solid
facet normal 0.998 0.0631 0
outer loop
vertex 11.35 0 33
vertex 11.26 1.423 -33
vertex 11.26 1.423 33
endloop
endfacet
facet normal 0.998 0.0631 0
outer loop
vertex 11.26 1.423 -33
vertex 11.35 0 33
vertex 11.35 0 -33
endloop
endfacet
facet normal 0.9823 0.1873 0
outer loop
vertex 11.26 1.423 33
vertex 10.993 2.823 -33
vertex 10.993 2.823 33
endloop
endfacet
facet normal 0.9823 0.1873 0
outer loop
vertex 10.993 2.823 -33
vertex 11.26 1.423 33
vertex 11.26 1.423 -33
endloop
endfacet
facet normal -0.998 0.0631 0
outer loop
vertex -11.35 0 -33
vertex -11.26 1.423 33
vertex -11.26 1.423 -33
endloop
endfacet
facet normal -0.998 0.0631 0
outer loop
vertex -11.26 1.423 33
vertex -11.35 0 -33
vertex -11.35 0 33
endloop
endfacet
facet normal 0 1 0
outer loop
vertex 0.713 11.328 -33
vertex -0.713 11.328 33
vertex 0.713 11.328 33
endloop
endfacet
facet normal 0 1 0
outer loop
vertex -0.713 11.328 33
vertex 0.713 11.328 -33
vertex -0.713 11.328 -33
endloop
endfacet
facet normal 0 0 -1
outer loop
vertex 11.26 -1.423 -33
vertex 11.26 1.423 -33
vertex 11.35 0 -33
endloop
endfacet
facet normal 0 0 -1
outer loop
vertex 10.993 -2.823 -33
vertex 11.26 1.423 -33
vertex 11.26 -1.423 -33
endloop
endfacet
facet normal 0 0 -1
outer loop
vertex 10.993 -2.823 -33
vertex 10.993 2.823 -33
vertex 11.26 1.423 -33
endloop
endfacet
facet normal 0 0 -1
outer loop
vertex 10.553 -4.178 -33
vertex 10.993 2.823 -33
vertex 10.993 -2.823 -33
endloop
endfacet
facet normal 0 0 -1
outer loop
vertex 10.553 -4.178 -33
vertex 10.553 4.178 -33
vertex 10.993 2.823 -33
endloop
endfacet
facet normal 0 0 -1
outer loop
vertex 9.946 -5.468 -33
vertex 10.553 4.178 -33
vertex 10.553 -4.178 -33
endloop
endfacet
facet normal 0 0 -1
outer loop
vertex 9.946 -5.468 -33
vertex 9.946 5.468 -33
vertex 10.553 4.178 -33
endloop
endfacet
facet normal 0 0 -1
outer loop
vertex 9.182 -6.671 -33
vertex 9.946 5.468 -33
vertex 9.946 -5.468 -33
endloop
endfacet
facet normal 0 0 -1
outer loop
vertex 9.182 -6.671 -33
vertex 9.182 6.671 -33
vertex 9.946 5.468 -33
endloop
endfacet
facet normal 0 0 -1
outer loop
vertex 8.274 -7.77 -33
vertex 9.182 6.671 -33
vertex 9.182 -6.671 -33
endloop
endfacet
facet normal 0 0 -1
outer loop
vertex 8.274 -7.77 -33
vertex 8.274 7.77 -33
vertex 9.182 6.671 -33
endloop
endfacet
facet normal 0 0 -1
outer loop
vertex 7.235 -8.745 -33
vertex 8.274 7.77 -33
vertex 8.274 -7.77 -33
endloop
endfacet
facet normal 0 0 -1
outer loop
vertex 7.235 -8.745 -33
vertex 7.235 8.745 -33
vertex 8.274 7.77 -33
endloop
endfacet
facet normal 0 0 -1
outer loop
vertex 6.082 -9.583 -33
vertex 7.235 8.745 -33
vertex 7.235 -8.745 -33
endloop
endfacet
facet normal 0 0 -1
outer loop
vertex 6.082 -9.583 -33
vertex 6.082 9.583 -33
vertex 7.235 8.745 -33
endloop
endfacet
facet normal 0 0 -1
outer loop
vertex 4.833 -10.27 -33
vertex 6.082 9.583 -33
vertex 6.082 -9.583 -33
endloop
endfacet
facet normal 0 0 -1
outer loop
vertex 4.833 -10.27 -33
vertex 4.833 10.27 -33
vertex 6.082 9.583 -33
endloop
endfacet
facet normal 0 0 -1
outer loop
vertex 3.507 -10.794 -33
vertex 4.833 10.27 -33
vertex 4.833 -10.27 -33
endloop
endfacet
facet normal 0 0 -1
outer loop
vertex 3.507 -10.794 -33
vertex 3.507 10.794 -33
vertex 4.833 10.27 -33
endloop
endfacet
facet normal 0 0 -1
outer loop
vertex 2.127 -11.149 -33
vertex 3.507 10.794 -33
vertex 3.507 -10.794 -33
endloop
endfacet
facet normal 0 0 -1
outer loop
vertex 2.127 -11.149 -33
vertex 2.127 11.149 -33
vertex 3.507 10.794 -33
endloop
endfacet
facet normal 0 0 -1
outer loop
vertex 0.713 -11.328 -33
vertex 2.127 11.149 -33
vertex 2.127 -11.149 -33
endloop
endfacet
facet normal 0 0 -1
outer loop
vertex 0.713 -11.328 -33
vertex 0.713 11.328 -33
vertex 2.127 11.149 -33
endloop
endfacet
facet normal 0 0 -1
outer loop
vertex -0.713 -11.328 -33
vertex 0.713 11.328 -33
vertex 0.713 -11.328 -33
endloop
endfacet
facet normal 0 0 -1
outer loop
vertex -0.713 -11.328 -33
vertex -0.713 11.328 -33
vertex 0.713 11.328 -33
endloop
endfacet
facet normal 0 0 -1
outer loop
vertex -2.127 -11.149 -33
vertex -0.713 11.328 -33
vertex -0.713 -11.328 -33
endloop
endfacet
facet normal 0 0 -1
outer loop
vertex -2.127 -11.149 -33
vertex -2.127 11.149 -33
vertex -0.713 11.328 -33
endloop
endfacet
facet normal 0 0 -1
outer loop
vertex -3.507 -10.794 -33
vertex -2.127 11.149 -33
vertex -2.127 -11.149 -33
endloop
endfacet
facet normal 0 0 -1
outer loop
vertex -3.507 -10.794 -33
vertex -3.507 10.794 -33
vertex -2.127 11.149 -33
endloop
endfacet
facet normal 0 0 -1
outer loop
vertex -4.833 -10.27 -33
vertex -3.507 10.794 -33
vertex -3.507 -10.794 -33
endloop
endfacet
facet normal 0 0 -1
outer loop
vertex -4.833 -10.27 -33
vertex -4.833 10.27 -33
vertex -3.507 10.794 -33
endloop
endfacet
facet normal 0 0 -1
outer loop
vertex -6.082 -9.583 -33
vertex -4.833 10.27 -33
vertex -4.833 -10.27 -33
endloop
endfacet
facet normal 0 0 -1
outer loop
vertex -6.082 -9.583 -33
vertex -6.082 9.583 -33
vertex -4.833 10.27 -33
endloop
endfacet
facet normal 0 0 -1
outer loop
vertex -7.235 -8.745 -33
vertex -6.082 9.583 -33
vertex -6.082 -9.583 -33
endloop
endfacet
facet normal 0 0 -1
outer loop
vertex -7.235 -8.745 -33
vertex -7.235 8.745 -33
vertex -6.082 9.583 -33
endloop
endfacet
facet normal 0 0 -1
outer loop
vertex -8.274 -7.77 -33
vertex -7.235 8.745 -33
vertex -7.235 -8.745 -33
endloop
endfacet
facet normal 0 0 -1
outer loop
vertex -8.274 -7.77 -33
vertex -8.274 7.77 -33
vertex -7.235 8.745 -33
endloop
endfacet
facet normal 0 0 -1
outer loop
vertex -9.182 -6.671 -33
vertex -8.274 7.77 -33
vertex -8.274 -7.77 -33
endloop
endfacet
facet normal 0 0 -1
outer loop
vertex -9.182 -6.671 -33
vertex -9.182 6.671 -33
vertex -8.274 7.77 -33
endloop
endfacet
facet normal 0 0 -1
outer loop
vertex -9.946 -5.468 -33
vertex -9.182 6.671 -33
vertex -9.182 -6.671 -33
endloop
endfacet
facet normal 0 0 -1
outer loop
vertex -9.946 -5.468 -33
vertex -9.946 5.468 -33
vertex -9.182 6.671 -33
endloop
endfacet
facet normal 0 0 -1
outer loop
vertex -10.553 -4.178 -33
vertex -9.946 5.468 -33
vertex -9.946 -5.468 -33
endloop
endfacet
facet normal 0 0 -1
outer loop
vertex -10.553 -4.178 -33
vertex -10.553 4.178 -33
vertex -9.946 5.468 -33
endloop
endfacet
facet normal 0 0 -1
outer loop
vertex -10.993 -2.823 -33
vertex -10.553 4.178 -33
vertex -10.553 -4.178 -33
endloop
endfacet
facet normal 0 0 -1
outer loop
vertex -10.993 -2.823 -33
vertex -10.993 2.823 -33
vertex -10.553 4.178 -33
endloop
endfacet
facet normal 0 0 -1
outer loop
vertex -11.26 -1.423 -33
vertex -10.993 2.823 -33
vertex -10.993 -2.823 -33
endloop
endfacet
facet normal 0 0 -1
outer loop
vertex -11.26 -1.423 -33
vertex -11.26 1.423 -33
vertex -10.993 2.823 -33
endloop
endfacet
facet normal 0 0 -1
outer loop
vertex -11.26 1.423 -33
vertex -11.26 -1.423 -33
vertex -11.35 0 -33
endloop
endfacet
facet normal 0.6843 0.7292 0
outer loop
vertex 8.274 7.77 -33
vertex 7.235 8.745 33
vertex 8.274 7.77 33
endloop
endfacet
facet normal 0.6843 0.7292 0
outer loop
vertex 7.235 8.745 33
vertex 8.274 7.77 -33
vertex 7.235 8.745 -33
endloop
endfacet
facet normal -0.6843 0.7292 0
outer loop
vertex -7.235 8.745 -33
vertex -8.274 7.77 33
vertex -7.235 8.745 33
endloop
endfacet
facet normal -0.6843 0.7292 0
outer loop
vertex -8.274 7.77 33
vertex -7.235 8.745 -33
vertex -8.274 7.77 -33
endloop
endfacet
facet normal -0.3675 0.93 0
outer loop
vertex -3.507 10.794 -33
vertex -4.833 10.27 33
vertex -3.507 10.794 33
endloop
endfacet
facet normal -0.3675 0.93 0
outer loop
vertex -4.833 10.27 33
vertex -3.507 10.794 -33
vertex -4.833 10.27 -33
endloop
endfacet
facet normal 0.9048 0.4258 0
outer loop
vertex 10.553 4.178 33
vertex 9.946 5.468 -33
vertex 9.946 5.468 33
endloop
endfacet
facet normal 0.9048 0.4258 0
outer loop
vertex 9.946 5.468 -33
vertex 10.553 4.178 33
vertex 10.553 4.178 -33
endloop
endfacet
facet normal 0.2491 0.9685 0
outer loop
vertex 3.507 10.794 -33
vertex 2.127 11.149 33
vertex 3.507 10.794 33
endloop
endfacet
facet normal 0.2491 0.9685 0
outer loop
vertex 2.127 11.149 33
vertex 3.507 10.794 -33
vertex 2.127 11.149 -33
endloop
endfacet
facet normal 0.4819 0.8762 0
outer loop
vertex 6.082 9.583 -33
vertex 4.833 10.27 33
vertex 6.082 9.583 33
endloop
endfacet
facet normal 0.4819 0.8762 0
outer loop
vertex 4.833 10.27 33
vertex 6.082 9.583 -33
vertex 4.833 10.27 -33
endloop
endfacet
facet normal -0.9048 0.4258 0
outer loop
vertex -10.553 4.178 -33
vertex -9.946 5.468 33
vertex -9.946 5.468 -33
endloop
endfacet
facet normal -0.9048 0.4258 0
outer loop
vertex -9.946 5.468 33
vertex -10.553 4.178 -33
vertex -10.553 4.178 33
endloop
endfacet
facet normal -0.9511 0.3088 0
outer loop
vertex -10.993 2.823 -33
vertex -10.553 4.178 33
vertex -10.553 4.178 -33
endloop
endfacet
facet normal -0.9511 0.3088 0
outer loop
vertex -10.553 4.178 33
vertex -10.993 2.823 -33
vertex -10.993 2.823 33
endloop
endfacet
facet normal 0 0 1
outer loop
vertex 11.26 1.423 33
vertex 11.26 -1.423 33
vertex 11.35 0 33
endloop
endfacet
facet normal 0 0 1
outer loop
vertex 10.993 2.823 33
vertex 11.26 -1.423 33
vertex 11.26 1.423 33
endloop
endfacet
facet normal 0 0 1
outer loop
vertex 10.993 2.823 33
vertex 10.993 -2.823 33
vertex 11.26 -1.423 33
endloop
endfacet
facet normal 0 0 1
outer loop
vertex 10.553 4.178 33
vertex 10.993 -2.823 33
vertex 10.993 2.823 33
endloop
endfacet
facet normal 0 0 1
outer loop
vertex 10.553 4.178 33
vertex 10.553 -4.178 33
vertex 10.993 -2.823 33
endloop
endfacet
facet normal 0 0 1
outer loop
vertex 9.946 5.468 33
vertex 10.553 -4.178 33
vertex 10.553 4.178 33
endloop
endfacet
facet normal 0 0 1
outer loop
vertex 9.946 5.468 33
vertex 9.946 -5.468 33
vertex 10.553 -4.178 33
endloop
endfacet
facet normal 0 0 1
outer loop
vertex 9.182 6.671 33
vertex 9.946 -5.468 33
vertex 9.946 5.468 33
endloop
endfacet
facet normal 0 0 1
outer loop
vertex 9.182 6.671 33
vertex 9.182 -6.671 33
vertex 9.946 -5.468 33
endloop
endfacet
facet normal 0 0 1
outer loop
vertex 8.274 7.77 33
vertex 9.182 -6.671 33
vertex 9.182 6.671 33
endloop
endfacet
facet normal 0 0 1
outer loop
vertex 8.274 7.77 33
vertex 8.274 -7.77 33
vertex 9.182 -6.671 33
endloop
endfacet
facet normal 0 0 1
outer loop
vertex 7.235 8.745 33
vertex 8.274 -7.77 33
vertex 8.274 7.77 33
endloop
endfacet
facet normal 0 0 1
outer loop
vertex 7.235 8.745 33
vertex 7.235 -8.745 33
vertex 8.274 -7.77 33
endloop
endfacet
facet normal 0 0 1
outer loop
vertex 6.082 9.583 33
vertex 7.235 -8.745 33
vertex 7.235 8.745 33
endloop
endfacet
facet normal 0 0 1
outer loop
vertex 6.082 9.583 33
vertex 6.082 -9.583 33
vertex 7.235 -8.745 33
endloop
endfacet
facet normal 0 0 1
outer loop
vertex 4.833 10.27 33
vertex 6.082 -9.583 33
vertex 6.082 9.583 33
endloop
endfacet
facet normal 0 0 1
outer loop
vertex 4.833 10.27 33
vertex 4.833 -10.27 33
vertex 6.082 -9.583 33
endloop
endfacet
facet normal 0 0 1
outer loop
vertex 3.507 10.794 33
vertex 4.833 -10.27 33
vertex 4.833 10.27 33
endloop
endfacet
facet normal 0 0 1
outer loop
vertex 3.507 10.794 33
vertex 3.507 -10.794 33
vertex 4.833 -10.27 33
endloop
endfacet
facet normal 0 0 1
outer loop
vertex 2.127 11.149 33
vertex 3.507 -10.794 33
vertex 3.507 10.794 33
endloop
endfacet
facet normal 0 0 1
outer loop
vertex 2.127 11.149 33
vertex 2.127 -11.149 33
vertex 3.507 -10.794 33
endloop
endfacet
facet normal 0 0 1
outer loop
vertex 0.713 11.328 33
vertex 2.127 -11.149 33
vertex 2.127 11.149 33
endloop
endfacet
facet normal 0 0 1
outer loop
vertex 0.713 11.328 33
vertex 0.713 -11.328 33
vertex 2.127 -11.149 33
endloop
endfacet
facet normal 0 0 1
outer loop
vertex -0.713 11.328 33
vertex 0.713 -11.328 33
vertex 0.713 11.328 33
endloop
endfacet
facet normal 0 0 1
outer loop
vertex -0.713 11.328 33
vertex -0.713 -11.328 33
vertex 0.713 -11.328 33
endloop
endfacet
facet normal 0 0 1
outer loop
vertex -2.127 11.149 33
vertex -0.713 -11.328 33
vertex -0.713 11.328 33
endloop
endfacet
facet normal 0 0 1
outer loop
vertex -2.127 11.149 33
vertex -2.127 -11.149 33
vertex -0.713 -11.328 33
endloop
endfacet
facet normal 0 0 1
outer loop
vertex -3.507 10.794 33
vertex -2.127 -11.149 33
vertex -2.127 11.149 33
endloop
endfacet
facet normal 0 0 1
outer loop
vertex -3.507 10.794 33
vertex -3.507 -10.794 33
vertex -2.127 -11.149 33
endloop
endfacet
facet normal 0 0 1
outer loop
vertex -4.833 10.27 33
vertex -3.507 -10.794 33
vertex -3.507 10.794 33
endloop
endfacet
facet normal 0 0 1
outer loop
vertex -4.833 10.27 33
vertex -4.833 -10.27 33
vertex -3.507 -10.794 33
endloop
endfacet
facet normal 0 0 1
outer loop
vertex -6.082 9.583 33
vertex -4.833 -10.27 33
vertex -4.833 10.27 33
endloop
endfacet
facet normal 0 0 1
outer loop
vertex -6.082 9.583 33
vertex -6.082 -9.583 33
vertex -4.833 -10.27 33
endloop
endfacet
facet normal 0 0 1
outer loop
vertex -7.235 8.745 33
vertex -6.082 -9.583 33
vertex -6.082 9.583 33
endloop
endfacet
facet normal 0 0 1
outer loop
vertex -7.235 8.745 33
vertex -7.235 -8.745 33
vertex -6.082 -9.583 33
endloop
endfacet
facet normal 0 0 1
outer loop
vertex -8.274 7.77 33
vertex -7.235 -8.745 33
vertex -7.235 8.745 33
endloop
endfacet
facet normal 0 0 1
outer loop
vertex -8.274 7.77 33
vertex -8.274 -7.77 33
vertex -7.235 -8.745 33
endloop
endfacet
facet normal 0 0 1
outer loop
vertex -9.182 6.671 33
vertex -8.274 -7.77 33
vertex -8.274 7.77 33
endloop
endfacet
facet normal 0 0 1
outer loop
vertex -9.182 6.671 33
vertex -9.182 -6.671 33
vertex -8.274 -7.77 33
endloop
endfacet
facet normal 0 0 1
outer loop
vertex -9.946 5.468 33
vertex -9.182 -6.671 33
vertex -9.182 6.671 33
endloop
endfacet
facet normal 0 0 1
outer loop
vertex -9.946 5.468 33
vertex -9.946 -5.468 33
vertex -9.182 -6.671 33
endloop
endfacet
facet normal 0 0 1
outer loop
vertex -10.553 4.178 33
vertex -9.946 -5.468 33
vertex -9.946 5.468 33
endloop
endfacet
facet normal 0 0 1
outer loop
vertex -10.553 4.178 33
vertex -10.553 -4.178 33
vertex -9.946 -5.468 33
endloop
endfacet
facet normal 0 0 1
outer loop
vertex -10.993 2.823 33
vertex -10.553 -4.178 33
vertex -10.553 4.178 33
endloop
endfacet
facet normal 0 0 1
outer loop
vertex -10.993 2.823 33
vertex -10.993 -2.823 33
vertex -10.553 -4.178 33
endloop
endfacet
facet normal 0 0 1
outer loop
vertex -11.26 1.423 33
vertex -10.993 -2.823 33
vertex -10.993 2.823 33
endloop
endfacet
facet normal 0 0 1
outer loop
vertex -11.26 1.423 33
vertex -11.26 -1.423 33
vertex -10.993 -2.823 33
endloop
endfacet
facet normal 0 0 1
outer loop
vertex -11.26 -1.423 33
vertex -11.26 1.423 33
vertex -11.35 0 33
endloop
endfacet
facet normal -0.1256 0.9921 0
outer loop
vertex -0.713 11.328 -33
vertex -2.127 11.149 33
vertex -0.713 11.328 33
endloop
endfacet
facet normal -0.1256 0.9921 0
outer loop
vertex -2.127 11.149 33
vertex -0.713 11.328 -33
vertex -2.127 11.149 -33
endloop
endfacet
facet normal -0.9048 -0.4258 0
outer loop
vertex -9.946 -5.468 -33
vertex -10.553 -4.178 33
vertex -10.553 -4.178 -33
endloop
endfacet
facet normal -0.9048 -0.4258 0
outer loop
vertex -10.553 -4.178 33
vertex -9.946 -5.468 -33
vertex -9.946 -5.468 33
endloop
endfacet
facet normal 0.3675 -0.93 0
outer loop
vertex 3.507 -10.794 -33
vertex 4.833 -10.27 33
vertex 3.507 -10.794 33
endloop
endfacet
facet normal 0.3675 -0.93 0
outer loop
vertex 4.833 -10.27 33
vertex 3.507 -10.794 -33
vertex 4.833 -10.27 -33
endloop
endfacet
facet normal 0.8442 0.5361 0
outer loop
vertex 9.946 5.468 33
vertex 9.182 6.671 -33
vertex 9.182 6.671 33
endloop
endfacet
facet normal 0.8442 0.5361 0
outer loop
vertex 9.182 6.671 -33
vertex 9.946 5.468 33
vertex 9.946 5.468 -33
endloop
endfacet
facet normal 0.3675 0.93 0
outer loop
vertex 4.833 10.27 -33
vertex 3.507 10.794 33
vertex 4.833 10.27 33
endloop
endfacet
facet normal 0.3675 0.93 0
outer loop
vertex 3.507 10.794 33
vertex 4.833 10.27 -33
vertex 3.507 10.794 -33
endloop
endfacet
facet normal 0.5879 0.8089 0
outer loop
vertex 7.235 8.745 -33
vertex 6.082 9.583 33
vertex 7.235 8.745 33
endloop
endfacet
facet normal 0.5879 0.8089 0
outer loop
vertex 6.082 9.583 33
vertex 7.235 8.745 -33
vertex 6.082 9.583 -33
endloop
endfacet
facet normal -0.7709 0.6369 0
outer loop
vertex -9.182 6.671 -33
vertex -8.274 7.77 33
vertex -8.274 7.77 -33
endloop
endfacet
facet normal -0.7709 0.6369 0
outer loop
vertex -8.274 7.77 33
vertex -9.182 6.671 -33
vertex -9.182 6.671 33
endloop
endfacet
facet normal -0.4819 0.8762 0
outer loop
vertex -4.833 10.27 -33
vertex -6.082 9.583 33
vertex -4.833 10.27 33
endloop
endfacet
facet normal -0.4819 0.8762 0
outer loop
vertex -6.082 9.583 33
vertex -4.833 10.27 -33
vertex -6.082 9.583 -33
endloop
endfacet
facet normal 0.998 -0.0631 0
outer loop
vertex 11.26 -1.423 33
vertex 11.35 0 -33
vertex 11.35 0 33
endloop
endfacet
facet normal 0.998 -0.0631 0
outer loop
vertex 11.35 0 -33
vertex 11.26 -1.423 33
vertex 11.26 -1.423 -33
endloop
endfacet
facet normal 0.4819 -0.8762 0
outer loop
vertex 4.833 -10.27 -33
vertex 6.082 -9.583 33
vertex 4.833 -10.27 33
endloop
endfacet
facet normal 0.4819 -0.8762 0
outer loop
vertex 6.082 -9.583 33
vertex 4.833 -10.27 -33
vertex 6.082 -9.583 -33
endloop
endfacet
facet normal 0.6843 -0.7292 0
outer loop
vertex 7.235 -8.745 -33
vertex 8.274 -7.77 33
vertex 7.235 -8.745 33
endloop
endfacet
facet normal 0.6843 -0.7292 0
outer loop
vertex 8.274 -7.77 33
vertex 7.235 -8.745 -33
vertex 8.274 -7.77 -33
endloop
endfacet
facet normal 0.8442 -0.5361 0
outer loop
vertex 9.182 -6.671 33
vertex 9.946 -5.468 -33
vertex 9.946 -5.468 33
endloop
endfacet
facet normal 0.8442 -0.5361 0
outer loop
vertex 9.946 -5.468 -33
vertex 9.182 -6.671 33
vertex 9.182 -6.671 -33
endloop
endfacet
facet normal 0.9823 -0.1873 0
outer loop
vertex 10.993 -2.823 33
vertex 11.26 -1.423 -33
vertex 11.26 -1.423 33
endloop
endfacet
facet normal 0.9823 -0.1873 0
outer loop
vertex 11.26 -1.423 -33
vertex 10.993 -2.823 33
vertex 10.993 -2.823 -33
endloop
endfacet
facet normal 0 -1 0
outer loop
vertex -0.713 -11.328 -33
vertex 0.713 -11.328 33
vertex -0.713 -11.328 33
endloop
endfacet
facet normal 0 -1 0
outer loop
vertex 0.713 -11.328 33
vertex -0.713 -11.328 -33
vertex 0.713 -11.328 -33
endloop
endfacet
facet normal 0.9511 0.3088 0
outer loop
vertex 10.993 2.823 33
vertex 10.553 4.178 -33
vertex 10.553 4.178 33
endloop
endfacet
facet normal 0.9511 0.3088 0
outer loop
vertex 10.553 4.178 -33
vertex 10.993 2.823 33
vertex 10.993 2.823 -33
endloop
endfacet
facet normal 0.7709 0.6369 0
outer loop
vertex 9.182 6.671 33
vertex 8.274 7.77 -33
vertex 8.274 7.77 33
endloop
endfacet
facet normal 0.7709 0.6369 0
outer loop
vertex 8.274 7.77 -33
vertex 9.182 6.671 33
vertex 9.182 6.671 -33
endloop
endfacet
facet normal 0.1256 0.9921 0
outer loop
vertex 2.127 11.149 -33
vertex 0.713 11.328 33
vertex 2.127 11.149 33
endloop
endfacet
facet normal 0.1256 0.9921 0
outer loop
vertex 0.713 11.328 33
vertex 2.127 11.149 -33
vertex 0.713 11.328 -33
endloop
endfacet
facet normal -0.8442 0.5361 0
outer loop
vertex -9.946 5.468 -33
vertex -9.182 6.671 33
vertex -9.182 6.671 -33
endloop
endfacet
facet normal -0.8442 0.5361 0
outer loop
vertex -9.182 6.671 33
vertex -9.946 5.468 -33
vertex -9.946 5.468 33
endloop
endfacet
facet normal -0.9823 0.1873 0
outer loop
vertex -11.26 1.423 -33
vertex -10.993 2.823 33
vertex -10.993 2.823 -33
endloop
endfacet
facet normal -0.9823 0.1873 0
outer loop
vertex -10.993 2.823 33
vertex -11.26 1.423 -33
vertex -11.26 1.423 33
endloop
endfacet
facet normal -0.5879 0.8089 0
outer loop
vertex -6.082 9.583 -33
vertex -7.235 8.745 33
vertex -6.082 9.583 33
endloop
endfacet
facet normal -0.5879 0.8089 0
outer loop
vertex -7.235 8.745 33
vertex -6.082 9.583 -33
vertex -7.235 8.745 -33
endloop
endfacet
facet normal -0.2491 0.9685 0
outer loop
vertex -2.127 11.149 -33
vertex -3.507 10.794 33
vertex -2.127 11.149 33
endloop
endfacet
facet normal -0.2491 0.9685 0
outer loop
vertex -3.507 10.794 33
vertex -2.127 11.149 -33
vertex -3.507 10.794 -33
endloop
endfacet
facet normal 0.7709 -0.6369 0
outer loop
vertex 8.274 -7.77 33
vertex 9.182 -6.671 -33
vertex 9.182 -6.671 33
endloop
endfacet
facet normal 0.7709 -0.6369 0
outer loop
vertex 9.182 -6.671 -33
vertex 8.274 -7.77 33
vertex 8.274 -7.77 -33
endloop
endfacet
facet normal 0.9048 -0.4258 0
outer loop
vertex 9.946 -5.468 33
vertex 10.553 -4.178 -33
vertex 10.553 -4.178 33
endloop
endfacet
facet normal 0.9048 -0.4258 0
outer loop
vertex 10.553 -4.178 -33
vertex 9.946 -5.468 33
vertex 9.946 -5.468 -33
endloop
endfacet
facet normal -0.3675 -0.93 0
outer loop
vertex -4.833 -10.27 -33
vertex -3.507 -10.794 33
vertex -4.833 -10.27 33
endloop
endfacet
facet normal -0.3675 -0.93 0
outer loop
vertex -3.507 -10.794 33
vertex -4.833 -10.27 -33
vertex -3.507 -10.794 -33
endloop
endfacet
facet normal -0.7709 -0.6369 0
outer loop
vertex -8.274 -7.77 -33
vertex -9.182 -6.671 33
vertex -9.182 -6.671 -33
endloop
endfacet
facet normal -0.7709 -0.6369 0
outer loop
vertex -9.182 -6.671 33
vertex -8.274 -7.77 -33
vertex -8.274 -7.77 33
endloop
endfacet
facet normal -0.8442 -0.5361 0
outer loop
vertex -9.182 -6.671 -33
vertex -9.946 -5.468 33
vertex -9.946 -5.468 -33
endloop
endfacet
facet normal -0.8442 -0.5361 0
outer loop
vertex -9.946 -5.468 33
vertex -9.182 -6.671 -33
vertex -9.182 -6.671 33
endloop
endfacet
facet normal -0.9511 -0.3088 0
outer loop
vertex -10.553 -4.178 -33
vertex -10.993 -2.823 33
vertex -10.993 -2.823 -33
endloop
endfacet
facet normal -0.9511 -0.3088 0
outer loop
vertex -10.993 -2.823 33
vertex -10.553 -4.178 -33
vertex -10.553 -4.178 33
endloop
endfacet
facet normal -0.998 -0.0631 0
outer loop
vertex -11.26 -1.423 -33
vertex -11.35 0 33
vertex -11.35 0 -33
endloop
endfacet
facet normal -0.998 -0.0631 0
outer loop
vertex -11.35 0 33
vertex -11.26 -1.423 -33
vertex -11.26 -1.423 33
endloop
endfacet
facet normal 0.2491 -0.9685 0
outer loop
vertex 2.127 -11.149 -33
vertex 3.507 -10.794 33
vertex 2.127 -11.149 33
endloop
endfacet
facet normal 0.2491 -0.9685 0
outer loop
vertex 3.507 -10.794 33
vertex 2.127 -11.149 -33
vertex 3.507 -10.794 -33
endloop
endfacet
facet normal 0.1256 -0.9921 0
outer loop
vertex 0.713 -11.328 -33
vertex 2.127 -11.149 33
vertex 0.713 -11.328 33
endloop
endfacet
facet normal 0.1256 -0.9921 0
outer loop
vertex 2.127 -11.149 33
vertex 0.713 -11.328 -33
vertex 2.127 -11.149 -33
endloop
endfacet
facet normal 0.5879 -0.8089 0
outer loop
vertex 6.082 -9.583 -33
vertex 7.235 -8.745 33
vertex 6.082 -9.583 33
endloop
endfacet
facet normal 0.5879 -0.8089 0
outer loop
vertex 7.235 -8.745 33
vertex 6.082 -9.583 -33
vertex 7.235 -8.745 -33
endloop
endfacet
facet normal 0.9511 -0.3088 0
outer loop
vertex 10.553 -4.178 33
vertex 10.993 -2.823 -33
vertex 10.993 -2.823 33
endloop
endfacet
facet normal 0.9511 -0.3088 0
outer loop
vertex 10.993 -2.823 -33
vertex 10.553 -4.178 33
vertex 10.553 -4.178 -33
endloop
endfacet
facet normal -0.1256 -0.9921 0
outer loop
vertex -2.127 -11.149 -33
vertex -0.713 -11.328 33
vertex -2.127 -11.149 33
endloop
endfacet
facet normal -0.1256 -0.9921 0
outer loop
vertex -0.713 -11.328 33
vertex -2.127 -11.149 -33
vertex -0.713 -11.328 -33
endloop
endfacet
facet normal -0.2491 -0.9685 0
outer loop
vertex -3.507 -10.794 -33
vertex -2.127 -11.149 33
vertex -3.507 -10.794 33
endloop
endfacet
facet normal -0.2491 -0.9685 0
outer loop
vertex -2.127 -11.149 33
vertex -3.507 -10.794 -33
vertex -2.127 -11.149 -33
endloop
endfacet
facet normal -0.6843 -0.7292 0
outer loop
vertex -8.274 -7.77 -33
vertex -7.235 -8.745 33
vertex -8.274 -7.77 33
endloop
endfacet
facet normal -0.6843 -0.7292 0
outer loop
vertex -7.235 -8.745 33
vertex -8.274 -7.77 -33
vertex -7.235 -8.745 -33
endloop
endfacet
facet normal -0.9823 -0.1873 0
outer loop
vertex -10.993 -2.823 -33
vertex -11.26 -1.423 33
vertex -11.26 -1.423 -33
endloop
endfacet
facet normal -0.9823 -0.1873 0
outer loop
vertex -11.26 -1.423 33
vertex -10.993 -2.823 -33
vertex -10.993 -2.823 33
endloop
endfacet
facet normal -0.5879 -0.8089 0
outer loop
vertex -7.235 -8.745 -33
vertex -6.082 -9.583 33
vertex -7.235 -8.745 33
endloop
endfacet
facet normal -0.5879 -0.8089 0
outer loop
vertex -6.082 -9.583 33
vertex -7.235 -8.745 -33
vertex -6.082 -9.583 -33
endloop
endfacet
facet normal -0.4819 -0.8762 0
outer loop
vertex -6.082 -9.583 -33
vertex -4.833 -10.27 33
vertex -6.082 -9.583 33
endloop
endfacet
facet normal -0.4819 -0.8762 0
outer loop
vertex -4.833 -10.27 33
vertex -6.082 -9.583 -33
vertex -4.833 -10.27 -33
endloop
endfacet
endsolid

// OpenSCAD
$fn = 50;


difference() {
	union() {
		translate(v = [0, 0, -33.0000000000]) {
			cylinder(h = 66, r = 11.3500000000);
		}
	}
	union() {
		translate(v = [0, 0, -100.0000000000]) {
			cylinder(h = 200, r = 0);
		}
	}
}
